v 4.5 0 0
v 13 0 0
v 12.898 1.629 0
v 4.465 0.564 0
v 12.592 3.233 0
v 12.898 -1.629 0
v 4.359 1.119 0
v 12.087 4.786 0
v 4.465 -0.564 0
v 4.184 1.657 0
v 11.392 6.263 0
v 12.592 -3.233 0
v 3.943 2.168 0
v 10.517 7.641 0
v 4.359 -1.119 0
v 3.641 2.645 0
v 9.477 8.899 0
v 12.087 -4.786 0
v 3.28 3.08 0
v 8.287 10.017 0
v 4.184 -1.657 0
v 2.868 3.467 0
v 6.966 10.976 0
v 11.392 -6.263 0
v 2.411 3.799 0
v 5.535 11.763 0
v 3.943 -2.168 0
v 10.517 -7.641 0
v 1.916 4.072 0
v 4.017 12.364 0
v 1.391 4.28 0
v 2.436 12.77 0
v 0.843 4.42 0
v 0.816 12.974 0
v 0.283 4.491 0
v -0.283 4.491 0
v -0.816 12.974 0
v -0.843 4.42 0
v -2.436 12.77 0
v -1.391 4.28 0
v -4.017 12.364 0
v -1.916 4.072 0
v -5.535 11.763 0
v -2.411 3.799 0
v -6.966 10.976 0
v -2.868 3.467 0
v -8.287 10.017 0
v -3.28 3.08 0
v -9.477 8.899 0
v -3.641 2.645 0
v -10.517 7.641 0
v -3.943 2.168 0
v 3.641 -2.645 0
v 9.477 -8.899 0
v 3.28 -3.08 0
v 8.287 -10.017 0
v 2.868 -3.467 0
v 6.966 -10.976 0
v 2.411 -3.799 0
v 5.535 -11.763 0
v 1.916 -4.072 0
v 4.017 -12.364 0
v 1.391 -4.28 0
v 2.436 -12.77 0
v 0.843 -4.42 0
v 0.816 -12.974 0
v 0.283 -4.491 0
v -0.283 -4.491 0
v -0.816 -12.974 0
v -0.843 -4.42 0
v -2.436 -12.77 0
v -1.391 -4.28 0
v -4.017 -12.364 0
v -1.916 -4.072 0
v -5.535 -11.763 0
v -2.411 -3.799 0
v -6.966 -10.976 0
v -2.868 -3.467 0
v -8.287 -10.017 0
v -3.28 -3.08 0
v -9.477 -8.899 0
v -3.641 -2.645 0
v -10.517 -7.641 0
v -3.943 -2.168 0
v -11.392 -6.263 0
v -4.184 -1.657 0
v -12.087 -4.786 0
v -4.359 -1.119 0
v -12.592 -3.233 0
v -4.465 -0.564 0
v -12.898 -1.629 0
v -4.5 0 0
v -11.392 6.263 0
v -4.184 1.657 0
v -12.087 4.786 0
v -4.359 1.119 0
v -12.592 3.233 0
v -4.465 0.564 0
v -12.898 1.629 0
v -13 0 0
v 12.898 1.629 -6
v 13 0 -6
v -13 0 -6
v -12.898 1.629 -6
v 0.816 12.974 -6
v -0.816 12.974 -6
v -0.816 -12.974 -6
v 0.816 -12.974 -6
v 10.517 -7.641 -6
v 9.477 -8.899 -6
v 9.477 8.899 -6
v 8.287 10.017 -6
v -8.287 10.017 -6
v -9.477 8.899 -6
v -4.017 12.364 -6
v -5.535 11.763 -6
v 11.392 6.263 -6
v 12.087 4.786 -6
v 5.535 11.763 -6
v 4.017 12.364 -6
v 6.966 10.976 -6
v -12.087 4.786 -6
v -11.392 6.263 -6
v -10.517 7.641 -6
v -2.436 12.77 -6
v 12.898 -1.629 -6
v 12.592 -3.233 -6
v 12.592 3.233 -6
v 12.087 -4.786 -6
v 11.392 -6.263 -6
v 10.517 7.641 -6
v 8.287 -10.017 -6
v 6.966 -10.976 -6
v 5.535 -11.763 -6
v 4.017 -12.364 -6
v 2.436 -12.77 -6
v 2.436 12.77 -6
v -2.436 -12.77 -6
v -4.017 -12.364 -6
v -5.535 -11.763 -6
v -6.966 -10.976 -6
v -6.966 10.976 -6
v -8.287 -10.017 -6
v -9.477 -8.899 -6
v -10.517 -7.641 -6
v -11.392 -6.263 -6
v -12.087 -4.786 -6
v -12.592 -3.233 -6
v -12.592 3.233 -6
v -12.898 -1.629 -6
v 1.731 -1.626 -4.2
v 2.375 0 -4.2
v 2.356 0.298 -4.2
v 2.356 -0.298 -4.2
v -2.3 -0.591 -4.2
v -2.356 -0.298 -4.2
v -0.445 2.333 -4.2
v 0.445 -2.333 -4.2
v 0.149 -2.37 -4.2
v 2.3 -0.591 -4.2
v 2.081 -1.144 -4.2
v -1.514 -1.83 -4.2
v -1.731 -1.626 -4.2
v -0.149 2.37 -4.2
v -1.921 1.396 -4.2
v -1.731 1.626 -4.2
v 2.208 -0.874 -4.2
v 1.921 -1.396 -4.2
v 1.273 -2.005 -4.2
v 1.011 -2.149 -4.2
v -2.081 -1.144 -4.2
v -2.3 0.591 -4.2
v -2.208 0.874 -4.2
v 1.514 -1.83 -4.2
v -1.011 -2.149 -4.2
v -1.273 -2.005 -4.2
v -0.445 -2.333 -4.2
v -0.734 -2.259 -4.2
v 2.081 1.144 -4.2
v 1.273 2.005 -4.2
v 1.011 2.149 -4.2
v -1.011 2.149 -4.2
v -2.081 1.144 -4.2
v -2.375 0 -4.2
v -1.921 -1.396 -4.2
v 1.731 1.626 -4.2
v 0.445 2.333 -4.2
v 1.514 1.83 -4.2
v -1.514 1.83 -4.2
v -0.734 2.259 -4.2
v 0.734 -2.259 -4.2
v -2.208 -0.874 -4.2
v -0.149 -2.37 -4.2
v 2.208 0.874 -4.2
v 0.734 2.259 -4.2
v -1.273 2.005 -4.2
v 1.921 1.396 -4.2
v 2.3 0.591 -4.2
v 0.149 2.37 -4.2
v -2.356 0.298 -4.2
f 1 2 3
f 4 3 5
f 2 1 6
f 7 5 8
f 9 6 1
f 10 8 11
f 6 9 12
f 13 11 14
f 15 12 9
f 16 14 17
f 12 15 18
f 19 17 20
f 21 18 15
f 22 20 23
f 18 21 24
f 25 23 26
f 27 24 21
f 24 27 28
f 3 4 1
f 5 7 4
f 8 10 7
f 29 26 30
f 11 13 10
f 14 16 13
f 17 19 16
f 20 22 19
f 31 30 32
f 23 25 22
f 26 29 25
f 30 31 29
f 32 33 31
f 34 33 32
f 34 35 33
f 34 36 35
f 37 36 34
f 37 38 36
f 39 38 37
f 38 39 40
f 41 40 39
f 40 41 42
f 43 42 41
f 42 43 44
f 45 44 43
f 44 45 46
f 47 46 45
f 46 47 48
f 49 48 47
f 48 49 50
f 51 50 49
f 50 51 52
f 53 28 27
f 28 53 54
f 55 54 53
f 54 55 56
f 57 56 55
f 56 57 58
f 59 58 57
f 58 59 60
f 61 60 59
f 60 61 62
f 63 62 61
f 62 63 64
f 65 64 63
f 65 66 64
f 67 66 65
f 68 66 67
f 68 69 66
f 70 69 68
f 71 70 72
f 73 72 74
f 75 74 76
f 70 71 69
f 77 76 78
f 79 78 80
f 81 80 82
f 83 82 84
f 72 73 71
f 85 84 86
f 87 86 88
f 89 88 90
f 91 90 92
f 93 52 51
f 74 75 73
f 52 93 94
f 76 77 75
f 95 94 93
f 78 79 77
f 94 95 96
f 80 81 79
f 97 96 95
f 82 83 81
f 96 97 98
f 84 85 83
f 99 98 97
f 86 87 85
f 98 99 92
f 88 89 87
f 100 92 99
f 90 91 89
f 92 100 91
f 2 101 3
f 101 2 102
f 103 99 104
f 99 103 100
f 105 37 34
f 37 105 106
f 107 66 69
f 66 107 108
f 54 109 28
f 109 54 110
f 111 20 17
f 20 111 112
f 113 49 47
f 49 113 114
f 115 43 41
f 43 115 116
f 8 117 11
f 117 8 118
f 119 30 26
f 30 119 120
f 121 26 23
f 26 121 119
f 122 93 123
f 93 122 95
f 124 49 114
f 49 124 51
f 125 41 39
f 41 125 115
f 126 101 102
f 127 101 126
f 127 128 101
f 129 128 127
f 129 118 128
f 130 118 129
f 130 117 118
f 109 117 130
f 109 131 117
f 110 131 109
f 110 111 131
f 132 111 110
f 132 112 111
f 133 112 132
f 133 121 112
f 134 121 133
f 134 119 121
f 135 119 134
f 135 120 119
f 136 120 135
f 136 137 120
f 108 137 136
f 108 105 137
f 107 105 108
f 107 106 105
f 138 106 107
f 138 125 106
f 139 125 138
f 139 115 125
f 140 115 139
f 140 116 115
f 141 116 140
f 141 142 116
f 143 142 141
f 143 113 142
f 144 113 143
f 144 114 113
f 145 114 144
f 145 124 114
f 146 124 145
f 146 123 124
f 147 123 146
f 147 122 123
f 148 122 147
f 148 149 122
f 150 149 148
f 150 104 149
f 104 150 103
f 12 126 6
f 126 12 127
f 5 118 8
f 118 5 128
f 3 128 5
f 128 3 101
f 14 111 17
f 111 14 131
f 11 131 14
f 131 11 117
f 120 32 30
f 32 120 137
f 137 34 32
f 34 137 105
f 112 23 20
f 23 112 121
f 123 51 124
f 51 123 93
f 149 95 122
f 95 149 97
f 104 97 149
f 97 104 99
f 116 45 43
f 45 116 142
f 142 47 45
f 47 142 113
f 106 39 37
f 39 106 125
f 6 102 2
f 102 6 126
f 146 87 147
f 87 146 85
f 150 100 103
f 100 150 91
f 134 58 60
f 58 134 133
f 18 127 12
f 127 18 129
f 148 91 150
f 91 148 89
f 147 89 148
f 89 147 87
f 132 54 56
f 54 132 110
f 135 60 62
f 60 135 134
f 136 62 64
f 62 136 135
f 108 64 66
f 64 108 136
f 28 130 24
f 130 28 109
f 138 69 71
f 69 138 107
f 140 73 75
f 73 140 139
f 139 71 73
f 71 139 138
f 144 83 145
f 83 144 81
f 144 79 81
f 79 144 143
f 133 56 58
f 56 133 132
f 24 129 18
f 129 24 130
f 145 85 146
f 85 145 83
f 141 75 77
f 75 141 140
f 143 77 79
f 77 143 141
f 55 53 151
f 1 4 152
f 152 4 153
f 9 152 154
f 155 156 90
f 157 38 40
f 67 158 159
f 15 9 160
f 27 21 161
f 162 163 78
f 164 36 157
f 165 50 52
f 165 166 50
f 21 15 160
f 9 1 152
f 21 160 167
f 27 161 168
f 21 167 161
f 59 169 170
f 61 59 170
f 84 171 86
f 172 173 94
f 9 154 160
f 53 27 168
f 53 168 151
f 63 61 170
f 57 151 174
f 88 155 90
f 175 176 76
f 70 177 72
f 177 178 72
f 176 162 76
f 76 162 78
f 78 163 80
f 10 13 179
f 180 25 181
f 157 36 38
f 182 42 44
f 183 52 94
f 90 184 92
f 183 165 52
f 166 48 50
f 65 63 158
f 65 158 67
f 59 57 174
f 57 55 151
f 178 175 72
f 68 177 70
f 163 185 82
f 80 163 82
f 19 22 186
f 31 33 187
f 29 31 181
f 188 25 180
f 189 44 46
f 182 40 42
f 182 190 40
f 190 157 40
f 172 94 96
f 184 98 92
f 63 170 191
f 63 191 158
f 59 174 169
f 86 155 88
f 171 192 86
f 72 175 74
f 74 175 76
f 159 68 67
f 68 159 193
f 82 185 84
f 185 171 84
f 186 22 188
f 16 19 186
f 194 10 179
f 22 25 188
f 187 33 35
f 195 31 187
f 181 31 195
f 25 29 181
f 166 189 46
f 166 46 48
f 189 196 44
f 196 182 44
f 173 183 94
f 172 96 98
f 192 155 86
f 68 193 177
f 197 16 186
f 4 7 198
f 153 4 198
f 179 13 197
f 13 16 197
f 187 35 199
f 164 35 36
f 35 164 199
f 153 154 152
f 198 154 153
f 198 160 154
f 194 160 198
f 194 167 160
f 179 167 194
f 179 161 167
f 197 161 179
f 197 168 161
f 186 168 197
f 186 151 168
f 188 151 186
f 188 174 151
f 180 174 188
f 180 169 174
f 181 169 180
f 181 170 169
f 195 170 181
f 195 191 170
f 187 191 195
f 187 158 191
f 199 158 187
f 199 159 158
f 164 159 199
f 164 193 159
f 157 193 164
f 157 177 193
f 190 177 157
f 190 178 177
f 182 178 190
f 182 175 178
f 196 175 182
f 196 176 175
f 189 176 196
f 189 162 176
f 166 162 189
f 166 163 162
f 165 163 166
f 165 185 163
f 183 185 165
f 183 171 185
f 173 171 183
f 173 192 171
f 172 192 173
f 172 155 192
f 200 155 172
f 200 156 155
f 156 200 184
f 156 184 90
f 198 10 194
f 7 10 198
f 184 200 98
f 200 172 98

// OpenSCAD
$fn = 50;


difference() {
	union() {
		translate(v = [0, 0, -3.0000000000]) {
			cylinder(h = 3, r = 10.0000000000);
		}
		translate(v = [0, 0, -6.0000000000]) {
			cylinder(h = 6, r = 13.0000000000);
		}
	}
	union() {
		translate(v = [0, 0, 0]) {
			rotate(a = [0, 0, 0]) {
				difference() {
					union() {
						#translate(v = [0, 0, -3.0000000000]) {
							cylinder(h = 3, r = 2.2500000000);
						}
						#translate(v = [0, 0, -4.2000000000]) {
							cylinder(h = 4.2000000000, r1 = 2.3750000000, r2 = 4.5000000000);
						}
						#translate(v = [0, 0, -3.0000000000]) {
							cylinder(h = 3, r = 2.3750000000);
						}
						#translate(v = [0, 0, -3.0000000000]) {
							cylinder(h = 3, r = 2.2500000000);
						}
					}
					union();
				}
			}
		}
	}
}
